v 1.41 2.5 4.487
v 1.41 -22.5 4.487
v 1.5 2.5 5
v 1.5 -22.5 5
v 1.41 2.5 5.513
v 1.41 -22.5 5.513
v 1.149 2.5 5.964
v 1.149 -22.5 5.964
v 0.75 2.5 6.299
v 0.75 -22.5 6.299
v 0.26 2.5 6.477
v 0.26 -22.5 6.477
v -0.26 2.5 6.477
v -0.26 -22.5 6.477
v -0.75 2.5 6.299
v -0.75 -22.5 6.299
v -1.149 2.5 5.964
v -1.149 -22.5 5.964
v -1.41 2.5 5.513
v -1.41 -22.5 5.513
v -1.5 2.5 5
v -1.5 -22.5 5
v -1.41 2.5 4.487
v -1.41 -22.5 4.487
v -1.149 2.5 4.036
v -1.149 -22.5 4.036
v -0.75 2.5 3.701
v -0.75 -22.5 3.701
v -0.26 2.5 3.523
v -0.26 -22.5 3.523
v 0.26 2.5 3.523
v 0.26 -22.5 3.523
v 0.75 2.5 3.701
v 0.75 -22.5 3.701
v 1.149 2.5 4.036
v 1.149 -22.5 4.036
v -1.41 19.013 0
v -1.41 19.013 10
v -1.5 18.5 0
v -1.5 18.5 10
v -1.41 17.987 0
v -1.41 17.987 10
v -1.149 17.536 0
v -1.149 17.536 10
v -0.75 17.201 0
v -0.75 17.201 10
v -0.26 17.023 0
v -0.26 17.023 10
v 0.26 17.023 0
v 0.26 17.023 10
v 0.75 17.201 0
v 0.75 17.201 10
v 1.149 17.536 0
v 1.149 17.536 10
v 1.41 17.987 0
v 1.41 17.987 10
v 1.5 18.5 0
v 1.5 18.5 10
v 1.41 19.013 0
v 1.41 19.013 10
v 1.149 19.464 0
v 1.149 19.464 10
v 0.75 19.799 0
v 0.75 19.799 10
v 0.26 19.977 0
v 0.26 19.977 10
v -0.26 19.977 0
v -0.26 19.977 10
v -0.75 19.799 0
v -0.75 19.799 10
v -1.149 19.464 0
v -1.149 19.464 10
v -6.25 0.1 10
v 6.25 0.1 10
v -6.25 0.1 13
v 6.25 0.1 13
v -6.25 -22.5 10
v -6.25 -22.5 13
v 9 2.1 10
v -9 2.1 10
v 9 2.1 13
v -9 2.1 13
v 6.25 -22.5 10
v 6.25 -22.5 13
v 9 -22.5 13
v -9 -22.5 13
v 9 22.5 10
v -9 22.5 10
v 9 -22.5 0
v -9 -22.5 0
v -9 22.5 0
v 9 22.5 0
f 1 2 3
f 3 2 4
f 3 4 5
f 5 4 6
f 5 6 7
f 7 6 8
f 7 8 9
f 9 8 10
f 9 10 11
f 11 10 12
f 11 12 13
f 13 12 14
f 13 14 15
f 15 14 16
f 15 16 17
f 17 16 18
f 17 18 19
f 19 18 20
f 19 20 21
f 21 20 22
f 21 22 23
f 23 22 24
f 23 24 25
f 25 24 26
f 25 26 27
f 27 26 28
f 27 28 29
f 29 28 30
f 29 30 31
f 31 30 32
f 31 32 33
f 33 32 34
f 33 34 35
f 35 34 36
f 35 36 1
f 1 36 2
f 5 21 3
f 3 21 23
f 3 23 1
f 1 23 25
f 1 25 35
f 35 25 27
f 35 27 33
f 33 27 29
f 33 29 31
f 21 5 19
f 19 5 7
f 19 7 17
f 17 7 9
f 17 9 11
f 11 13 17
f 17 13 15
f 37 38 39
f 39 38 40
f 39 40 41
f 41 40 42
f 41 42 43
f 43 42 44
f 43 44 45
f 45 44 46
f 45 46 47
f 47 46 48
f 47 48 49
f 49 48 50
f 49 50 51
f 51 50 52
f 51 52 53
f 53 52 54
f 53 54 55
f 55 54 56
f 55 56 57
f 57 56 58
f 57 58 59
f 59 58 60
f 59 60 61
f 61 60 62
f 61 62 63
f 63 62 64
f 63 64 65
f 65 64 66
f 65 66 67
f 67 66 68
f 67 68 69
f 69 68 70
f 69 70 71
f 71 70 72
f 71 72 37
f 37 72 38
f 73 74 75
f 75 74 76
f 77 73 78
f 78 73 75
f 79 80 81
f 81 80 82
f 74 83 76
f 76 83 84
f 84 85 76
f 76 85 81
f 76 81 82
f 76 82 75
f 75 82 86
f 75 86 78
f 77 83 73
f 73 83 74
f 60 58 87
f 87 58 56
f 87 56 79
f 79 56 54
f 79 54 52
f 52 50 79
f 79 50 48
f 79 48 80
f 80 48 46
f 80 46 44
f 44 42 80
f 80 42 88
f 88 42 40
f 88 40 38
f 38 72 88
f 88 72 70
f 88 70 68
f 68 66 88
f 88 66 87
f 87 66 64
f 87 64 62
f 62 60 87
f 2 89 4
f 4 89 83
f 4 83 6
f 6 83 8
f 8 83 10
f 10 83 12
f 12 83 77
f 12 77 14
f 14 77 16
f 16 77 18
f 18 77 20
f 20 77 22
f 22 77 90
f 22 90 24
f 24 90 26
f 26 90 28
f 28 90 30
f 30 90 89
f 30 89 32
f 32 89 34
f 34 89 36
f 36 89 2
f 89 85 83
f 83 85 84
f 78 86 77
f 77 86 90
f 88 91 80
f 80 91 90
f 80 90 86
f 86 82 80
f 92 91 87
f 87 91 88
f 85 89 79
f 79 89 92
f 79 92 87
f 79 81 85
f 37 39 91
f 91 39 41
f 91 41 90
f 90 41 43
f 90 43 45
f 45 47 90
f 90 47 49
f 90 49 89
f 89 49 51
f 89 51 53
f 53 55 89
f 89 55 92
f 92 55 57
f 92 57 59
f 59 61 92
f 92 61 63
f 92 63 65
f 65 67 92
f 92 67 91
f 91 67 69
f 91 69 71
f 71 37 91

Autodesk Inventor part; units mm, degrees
ref_plane "YZ Plane" through (0, 0, 0) normal (1, 0, 0) x (0, 1, 0)
ref_plane "XZ Plane" through (0, 0, 0) normal (0, 1, 0) x (-1, 0, 0)
ref_plane "XY Plane" through (0, 0, 0) normal (0, 0, 1) x (1, 0, 0)
sketch "スケッチ1" plane through (0, 0, 0) normal (0, 0, 1) x (1, 0, 0)
  line L0 (-9, -22.5) -> (9, -22.5)
  line L1 (9, -22.5) -> (9, 22.5)
  line L2 (9, 22.5) -> (-9, 22.5)
  line L3 (-9, 22.5) -> (-9, -22.5)
  line L4 (-9, -22.5) -> (9, 22.5) construction
  line L5 (9, -22.5) -> (-9, 22.5) construction
  point P0 (0, 0)
  dimension "d0" = 18
  dimension "d1" = 45
extrude "押し出し1" add sketch "スケッチ1" along normal blind 10
sketch "スケッチ2" plane through (0, 0, 10) normal (0, 0, 1) x (1, 0, 0)
  line L0 (-9, 22.5) -> (-9, -22.5) projected
  line L1 (-9, -22.5) -> (-9, 2.1)
  line L2 (-9, 2.1) -> (9, 2.1)
  line L3 (9, -22.5) -> (9, 22.5) projected
  line L4 (9, 2.1) -> (9, -22.5)
  line L5 (9, -22.5) -> (6.25, -22.5)
  line L6 (-9, -22.5) -> (9, -22.5) projected
  line L7 (6.25, -22.5) -> (6.25, 0.1)
  line L8 (6.25, 0.1) -> (-6.25, 0.1)
  line L9 (-6.25, 0.1) -> (-6.25, -22.5)
  line L10 (-9, -22.5) -> (-6.25, -22.5)
  point P0 (0, 0)
  dimension "d4" = 12.5
  dimension "d5" = 2.75
  dimension "d6" = 22.6
  dimension "d7" = 2
extrude "押し出し2" add sketch "スケッチ2" along normal blind 3 contours L2 L3 L5 L7 L8 L9 L6 L0
sketch "スケッチ3" plane through (0, 0, 10) normal (0, 0, 1) x (1, 0, 0)
  circle A0 centre (0, 18.5) radius 1.5
  line L0 (9, 22.5) -> (-9, 22.5) projected
  point P0 (0, 0)
  dimension "d10" = 3
  dimension "d11" = 4
extrude "押し出し3" cut sketch "スケッチ3" against normal through all
sketch "スケッチ4" plane through (-9, -22.5, 0) normal (0, -1, 0) x (1, 0, 0)
  circle A0 centre (9, 5) radius 1.5
  line L0 (18, 0) -> (18, 13) projected
  line L1 (0, 0) -> (18, 0) projected
  point P0 (9, 0)
  dimension "d14" = 3
  dimension "d15" = 9
  dimension "d16" = 5
extrude "押し出し4" cut sketch "スケッチ4" against normal blind 25
properties part number "ジョイントモーター付き"
